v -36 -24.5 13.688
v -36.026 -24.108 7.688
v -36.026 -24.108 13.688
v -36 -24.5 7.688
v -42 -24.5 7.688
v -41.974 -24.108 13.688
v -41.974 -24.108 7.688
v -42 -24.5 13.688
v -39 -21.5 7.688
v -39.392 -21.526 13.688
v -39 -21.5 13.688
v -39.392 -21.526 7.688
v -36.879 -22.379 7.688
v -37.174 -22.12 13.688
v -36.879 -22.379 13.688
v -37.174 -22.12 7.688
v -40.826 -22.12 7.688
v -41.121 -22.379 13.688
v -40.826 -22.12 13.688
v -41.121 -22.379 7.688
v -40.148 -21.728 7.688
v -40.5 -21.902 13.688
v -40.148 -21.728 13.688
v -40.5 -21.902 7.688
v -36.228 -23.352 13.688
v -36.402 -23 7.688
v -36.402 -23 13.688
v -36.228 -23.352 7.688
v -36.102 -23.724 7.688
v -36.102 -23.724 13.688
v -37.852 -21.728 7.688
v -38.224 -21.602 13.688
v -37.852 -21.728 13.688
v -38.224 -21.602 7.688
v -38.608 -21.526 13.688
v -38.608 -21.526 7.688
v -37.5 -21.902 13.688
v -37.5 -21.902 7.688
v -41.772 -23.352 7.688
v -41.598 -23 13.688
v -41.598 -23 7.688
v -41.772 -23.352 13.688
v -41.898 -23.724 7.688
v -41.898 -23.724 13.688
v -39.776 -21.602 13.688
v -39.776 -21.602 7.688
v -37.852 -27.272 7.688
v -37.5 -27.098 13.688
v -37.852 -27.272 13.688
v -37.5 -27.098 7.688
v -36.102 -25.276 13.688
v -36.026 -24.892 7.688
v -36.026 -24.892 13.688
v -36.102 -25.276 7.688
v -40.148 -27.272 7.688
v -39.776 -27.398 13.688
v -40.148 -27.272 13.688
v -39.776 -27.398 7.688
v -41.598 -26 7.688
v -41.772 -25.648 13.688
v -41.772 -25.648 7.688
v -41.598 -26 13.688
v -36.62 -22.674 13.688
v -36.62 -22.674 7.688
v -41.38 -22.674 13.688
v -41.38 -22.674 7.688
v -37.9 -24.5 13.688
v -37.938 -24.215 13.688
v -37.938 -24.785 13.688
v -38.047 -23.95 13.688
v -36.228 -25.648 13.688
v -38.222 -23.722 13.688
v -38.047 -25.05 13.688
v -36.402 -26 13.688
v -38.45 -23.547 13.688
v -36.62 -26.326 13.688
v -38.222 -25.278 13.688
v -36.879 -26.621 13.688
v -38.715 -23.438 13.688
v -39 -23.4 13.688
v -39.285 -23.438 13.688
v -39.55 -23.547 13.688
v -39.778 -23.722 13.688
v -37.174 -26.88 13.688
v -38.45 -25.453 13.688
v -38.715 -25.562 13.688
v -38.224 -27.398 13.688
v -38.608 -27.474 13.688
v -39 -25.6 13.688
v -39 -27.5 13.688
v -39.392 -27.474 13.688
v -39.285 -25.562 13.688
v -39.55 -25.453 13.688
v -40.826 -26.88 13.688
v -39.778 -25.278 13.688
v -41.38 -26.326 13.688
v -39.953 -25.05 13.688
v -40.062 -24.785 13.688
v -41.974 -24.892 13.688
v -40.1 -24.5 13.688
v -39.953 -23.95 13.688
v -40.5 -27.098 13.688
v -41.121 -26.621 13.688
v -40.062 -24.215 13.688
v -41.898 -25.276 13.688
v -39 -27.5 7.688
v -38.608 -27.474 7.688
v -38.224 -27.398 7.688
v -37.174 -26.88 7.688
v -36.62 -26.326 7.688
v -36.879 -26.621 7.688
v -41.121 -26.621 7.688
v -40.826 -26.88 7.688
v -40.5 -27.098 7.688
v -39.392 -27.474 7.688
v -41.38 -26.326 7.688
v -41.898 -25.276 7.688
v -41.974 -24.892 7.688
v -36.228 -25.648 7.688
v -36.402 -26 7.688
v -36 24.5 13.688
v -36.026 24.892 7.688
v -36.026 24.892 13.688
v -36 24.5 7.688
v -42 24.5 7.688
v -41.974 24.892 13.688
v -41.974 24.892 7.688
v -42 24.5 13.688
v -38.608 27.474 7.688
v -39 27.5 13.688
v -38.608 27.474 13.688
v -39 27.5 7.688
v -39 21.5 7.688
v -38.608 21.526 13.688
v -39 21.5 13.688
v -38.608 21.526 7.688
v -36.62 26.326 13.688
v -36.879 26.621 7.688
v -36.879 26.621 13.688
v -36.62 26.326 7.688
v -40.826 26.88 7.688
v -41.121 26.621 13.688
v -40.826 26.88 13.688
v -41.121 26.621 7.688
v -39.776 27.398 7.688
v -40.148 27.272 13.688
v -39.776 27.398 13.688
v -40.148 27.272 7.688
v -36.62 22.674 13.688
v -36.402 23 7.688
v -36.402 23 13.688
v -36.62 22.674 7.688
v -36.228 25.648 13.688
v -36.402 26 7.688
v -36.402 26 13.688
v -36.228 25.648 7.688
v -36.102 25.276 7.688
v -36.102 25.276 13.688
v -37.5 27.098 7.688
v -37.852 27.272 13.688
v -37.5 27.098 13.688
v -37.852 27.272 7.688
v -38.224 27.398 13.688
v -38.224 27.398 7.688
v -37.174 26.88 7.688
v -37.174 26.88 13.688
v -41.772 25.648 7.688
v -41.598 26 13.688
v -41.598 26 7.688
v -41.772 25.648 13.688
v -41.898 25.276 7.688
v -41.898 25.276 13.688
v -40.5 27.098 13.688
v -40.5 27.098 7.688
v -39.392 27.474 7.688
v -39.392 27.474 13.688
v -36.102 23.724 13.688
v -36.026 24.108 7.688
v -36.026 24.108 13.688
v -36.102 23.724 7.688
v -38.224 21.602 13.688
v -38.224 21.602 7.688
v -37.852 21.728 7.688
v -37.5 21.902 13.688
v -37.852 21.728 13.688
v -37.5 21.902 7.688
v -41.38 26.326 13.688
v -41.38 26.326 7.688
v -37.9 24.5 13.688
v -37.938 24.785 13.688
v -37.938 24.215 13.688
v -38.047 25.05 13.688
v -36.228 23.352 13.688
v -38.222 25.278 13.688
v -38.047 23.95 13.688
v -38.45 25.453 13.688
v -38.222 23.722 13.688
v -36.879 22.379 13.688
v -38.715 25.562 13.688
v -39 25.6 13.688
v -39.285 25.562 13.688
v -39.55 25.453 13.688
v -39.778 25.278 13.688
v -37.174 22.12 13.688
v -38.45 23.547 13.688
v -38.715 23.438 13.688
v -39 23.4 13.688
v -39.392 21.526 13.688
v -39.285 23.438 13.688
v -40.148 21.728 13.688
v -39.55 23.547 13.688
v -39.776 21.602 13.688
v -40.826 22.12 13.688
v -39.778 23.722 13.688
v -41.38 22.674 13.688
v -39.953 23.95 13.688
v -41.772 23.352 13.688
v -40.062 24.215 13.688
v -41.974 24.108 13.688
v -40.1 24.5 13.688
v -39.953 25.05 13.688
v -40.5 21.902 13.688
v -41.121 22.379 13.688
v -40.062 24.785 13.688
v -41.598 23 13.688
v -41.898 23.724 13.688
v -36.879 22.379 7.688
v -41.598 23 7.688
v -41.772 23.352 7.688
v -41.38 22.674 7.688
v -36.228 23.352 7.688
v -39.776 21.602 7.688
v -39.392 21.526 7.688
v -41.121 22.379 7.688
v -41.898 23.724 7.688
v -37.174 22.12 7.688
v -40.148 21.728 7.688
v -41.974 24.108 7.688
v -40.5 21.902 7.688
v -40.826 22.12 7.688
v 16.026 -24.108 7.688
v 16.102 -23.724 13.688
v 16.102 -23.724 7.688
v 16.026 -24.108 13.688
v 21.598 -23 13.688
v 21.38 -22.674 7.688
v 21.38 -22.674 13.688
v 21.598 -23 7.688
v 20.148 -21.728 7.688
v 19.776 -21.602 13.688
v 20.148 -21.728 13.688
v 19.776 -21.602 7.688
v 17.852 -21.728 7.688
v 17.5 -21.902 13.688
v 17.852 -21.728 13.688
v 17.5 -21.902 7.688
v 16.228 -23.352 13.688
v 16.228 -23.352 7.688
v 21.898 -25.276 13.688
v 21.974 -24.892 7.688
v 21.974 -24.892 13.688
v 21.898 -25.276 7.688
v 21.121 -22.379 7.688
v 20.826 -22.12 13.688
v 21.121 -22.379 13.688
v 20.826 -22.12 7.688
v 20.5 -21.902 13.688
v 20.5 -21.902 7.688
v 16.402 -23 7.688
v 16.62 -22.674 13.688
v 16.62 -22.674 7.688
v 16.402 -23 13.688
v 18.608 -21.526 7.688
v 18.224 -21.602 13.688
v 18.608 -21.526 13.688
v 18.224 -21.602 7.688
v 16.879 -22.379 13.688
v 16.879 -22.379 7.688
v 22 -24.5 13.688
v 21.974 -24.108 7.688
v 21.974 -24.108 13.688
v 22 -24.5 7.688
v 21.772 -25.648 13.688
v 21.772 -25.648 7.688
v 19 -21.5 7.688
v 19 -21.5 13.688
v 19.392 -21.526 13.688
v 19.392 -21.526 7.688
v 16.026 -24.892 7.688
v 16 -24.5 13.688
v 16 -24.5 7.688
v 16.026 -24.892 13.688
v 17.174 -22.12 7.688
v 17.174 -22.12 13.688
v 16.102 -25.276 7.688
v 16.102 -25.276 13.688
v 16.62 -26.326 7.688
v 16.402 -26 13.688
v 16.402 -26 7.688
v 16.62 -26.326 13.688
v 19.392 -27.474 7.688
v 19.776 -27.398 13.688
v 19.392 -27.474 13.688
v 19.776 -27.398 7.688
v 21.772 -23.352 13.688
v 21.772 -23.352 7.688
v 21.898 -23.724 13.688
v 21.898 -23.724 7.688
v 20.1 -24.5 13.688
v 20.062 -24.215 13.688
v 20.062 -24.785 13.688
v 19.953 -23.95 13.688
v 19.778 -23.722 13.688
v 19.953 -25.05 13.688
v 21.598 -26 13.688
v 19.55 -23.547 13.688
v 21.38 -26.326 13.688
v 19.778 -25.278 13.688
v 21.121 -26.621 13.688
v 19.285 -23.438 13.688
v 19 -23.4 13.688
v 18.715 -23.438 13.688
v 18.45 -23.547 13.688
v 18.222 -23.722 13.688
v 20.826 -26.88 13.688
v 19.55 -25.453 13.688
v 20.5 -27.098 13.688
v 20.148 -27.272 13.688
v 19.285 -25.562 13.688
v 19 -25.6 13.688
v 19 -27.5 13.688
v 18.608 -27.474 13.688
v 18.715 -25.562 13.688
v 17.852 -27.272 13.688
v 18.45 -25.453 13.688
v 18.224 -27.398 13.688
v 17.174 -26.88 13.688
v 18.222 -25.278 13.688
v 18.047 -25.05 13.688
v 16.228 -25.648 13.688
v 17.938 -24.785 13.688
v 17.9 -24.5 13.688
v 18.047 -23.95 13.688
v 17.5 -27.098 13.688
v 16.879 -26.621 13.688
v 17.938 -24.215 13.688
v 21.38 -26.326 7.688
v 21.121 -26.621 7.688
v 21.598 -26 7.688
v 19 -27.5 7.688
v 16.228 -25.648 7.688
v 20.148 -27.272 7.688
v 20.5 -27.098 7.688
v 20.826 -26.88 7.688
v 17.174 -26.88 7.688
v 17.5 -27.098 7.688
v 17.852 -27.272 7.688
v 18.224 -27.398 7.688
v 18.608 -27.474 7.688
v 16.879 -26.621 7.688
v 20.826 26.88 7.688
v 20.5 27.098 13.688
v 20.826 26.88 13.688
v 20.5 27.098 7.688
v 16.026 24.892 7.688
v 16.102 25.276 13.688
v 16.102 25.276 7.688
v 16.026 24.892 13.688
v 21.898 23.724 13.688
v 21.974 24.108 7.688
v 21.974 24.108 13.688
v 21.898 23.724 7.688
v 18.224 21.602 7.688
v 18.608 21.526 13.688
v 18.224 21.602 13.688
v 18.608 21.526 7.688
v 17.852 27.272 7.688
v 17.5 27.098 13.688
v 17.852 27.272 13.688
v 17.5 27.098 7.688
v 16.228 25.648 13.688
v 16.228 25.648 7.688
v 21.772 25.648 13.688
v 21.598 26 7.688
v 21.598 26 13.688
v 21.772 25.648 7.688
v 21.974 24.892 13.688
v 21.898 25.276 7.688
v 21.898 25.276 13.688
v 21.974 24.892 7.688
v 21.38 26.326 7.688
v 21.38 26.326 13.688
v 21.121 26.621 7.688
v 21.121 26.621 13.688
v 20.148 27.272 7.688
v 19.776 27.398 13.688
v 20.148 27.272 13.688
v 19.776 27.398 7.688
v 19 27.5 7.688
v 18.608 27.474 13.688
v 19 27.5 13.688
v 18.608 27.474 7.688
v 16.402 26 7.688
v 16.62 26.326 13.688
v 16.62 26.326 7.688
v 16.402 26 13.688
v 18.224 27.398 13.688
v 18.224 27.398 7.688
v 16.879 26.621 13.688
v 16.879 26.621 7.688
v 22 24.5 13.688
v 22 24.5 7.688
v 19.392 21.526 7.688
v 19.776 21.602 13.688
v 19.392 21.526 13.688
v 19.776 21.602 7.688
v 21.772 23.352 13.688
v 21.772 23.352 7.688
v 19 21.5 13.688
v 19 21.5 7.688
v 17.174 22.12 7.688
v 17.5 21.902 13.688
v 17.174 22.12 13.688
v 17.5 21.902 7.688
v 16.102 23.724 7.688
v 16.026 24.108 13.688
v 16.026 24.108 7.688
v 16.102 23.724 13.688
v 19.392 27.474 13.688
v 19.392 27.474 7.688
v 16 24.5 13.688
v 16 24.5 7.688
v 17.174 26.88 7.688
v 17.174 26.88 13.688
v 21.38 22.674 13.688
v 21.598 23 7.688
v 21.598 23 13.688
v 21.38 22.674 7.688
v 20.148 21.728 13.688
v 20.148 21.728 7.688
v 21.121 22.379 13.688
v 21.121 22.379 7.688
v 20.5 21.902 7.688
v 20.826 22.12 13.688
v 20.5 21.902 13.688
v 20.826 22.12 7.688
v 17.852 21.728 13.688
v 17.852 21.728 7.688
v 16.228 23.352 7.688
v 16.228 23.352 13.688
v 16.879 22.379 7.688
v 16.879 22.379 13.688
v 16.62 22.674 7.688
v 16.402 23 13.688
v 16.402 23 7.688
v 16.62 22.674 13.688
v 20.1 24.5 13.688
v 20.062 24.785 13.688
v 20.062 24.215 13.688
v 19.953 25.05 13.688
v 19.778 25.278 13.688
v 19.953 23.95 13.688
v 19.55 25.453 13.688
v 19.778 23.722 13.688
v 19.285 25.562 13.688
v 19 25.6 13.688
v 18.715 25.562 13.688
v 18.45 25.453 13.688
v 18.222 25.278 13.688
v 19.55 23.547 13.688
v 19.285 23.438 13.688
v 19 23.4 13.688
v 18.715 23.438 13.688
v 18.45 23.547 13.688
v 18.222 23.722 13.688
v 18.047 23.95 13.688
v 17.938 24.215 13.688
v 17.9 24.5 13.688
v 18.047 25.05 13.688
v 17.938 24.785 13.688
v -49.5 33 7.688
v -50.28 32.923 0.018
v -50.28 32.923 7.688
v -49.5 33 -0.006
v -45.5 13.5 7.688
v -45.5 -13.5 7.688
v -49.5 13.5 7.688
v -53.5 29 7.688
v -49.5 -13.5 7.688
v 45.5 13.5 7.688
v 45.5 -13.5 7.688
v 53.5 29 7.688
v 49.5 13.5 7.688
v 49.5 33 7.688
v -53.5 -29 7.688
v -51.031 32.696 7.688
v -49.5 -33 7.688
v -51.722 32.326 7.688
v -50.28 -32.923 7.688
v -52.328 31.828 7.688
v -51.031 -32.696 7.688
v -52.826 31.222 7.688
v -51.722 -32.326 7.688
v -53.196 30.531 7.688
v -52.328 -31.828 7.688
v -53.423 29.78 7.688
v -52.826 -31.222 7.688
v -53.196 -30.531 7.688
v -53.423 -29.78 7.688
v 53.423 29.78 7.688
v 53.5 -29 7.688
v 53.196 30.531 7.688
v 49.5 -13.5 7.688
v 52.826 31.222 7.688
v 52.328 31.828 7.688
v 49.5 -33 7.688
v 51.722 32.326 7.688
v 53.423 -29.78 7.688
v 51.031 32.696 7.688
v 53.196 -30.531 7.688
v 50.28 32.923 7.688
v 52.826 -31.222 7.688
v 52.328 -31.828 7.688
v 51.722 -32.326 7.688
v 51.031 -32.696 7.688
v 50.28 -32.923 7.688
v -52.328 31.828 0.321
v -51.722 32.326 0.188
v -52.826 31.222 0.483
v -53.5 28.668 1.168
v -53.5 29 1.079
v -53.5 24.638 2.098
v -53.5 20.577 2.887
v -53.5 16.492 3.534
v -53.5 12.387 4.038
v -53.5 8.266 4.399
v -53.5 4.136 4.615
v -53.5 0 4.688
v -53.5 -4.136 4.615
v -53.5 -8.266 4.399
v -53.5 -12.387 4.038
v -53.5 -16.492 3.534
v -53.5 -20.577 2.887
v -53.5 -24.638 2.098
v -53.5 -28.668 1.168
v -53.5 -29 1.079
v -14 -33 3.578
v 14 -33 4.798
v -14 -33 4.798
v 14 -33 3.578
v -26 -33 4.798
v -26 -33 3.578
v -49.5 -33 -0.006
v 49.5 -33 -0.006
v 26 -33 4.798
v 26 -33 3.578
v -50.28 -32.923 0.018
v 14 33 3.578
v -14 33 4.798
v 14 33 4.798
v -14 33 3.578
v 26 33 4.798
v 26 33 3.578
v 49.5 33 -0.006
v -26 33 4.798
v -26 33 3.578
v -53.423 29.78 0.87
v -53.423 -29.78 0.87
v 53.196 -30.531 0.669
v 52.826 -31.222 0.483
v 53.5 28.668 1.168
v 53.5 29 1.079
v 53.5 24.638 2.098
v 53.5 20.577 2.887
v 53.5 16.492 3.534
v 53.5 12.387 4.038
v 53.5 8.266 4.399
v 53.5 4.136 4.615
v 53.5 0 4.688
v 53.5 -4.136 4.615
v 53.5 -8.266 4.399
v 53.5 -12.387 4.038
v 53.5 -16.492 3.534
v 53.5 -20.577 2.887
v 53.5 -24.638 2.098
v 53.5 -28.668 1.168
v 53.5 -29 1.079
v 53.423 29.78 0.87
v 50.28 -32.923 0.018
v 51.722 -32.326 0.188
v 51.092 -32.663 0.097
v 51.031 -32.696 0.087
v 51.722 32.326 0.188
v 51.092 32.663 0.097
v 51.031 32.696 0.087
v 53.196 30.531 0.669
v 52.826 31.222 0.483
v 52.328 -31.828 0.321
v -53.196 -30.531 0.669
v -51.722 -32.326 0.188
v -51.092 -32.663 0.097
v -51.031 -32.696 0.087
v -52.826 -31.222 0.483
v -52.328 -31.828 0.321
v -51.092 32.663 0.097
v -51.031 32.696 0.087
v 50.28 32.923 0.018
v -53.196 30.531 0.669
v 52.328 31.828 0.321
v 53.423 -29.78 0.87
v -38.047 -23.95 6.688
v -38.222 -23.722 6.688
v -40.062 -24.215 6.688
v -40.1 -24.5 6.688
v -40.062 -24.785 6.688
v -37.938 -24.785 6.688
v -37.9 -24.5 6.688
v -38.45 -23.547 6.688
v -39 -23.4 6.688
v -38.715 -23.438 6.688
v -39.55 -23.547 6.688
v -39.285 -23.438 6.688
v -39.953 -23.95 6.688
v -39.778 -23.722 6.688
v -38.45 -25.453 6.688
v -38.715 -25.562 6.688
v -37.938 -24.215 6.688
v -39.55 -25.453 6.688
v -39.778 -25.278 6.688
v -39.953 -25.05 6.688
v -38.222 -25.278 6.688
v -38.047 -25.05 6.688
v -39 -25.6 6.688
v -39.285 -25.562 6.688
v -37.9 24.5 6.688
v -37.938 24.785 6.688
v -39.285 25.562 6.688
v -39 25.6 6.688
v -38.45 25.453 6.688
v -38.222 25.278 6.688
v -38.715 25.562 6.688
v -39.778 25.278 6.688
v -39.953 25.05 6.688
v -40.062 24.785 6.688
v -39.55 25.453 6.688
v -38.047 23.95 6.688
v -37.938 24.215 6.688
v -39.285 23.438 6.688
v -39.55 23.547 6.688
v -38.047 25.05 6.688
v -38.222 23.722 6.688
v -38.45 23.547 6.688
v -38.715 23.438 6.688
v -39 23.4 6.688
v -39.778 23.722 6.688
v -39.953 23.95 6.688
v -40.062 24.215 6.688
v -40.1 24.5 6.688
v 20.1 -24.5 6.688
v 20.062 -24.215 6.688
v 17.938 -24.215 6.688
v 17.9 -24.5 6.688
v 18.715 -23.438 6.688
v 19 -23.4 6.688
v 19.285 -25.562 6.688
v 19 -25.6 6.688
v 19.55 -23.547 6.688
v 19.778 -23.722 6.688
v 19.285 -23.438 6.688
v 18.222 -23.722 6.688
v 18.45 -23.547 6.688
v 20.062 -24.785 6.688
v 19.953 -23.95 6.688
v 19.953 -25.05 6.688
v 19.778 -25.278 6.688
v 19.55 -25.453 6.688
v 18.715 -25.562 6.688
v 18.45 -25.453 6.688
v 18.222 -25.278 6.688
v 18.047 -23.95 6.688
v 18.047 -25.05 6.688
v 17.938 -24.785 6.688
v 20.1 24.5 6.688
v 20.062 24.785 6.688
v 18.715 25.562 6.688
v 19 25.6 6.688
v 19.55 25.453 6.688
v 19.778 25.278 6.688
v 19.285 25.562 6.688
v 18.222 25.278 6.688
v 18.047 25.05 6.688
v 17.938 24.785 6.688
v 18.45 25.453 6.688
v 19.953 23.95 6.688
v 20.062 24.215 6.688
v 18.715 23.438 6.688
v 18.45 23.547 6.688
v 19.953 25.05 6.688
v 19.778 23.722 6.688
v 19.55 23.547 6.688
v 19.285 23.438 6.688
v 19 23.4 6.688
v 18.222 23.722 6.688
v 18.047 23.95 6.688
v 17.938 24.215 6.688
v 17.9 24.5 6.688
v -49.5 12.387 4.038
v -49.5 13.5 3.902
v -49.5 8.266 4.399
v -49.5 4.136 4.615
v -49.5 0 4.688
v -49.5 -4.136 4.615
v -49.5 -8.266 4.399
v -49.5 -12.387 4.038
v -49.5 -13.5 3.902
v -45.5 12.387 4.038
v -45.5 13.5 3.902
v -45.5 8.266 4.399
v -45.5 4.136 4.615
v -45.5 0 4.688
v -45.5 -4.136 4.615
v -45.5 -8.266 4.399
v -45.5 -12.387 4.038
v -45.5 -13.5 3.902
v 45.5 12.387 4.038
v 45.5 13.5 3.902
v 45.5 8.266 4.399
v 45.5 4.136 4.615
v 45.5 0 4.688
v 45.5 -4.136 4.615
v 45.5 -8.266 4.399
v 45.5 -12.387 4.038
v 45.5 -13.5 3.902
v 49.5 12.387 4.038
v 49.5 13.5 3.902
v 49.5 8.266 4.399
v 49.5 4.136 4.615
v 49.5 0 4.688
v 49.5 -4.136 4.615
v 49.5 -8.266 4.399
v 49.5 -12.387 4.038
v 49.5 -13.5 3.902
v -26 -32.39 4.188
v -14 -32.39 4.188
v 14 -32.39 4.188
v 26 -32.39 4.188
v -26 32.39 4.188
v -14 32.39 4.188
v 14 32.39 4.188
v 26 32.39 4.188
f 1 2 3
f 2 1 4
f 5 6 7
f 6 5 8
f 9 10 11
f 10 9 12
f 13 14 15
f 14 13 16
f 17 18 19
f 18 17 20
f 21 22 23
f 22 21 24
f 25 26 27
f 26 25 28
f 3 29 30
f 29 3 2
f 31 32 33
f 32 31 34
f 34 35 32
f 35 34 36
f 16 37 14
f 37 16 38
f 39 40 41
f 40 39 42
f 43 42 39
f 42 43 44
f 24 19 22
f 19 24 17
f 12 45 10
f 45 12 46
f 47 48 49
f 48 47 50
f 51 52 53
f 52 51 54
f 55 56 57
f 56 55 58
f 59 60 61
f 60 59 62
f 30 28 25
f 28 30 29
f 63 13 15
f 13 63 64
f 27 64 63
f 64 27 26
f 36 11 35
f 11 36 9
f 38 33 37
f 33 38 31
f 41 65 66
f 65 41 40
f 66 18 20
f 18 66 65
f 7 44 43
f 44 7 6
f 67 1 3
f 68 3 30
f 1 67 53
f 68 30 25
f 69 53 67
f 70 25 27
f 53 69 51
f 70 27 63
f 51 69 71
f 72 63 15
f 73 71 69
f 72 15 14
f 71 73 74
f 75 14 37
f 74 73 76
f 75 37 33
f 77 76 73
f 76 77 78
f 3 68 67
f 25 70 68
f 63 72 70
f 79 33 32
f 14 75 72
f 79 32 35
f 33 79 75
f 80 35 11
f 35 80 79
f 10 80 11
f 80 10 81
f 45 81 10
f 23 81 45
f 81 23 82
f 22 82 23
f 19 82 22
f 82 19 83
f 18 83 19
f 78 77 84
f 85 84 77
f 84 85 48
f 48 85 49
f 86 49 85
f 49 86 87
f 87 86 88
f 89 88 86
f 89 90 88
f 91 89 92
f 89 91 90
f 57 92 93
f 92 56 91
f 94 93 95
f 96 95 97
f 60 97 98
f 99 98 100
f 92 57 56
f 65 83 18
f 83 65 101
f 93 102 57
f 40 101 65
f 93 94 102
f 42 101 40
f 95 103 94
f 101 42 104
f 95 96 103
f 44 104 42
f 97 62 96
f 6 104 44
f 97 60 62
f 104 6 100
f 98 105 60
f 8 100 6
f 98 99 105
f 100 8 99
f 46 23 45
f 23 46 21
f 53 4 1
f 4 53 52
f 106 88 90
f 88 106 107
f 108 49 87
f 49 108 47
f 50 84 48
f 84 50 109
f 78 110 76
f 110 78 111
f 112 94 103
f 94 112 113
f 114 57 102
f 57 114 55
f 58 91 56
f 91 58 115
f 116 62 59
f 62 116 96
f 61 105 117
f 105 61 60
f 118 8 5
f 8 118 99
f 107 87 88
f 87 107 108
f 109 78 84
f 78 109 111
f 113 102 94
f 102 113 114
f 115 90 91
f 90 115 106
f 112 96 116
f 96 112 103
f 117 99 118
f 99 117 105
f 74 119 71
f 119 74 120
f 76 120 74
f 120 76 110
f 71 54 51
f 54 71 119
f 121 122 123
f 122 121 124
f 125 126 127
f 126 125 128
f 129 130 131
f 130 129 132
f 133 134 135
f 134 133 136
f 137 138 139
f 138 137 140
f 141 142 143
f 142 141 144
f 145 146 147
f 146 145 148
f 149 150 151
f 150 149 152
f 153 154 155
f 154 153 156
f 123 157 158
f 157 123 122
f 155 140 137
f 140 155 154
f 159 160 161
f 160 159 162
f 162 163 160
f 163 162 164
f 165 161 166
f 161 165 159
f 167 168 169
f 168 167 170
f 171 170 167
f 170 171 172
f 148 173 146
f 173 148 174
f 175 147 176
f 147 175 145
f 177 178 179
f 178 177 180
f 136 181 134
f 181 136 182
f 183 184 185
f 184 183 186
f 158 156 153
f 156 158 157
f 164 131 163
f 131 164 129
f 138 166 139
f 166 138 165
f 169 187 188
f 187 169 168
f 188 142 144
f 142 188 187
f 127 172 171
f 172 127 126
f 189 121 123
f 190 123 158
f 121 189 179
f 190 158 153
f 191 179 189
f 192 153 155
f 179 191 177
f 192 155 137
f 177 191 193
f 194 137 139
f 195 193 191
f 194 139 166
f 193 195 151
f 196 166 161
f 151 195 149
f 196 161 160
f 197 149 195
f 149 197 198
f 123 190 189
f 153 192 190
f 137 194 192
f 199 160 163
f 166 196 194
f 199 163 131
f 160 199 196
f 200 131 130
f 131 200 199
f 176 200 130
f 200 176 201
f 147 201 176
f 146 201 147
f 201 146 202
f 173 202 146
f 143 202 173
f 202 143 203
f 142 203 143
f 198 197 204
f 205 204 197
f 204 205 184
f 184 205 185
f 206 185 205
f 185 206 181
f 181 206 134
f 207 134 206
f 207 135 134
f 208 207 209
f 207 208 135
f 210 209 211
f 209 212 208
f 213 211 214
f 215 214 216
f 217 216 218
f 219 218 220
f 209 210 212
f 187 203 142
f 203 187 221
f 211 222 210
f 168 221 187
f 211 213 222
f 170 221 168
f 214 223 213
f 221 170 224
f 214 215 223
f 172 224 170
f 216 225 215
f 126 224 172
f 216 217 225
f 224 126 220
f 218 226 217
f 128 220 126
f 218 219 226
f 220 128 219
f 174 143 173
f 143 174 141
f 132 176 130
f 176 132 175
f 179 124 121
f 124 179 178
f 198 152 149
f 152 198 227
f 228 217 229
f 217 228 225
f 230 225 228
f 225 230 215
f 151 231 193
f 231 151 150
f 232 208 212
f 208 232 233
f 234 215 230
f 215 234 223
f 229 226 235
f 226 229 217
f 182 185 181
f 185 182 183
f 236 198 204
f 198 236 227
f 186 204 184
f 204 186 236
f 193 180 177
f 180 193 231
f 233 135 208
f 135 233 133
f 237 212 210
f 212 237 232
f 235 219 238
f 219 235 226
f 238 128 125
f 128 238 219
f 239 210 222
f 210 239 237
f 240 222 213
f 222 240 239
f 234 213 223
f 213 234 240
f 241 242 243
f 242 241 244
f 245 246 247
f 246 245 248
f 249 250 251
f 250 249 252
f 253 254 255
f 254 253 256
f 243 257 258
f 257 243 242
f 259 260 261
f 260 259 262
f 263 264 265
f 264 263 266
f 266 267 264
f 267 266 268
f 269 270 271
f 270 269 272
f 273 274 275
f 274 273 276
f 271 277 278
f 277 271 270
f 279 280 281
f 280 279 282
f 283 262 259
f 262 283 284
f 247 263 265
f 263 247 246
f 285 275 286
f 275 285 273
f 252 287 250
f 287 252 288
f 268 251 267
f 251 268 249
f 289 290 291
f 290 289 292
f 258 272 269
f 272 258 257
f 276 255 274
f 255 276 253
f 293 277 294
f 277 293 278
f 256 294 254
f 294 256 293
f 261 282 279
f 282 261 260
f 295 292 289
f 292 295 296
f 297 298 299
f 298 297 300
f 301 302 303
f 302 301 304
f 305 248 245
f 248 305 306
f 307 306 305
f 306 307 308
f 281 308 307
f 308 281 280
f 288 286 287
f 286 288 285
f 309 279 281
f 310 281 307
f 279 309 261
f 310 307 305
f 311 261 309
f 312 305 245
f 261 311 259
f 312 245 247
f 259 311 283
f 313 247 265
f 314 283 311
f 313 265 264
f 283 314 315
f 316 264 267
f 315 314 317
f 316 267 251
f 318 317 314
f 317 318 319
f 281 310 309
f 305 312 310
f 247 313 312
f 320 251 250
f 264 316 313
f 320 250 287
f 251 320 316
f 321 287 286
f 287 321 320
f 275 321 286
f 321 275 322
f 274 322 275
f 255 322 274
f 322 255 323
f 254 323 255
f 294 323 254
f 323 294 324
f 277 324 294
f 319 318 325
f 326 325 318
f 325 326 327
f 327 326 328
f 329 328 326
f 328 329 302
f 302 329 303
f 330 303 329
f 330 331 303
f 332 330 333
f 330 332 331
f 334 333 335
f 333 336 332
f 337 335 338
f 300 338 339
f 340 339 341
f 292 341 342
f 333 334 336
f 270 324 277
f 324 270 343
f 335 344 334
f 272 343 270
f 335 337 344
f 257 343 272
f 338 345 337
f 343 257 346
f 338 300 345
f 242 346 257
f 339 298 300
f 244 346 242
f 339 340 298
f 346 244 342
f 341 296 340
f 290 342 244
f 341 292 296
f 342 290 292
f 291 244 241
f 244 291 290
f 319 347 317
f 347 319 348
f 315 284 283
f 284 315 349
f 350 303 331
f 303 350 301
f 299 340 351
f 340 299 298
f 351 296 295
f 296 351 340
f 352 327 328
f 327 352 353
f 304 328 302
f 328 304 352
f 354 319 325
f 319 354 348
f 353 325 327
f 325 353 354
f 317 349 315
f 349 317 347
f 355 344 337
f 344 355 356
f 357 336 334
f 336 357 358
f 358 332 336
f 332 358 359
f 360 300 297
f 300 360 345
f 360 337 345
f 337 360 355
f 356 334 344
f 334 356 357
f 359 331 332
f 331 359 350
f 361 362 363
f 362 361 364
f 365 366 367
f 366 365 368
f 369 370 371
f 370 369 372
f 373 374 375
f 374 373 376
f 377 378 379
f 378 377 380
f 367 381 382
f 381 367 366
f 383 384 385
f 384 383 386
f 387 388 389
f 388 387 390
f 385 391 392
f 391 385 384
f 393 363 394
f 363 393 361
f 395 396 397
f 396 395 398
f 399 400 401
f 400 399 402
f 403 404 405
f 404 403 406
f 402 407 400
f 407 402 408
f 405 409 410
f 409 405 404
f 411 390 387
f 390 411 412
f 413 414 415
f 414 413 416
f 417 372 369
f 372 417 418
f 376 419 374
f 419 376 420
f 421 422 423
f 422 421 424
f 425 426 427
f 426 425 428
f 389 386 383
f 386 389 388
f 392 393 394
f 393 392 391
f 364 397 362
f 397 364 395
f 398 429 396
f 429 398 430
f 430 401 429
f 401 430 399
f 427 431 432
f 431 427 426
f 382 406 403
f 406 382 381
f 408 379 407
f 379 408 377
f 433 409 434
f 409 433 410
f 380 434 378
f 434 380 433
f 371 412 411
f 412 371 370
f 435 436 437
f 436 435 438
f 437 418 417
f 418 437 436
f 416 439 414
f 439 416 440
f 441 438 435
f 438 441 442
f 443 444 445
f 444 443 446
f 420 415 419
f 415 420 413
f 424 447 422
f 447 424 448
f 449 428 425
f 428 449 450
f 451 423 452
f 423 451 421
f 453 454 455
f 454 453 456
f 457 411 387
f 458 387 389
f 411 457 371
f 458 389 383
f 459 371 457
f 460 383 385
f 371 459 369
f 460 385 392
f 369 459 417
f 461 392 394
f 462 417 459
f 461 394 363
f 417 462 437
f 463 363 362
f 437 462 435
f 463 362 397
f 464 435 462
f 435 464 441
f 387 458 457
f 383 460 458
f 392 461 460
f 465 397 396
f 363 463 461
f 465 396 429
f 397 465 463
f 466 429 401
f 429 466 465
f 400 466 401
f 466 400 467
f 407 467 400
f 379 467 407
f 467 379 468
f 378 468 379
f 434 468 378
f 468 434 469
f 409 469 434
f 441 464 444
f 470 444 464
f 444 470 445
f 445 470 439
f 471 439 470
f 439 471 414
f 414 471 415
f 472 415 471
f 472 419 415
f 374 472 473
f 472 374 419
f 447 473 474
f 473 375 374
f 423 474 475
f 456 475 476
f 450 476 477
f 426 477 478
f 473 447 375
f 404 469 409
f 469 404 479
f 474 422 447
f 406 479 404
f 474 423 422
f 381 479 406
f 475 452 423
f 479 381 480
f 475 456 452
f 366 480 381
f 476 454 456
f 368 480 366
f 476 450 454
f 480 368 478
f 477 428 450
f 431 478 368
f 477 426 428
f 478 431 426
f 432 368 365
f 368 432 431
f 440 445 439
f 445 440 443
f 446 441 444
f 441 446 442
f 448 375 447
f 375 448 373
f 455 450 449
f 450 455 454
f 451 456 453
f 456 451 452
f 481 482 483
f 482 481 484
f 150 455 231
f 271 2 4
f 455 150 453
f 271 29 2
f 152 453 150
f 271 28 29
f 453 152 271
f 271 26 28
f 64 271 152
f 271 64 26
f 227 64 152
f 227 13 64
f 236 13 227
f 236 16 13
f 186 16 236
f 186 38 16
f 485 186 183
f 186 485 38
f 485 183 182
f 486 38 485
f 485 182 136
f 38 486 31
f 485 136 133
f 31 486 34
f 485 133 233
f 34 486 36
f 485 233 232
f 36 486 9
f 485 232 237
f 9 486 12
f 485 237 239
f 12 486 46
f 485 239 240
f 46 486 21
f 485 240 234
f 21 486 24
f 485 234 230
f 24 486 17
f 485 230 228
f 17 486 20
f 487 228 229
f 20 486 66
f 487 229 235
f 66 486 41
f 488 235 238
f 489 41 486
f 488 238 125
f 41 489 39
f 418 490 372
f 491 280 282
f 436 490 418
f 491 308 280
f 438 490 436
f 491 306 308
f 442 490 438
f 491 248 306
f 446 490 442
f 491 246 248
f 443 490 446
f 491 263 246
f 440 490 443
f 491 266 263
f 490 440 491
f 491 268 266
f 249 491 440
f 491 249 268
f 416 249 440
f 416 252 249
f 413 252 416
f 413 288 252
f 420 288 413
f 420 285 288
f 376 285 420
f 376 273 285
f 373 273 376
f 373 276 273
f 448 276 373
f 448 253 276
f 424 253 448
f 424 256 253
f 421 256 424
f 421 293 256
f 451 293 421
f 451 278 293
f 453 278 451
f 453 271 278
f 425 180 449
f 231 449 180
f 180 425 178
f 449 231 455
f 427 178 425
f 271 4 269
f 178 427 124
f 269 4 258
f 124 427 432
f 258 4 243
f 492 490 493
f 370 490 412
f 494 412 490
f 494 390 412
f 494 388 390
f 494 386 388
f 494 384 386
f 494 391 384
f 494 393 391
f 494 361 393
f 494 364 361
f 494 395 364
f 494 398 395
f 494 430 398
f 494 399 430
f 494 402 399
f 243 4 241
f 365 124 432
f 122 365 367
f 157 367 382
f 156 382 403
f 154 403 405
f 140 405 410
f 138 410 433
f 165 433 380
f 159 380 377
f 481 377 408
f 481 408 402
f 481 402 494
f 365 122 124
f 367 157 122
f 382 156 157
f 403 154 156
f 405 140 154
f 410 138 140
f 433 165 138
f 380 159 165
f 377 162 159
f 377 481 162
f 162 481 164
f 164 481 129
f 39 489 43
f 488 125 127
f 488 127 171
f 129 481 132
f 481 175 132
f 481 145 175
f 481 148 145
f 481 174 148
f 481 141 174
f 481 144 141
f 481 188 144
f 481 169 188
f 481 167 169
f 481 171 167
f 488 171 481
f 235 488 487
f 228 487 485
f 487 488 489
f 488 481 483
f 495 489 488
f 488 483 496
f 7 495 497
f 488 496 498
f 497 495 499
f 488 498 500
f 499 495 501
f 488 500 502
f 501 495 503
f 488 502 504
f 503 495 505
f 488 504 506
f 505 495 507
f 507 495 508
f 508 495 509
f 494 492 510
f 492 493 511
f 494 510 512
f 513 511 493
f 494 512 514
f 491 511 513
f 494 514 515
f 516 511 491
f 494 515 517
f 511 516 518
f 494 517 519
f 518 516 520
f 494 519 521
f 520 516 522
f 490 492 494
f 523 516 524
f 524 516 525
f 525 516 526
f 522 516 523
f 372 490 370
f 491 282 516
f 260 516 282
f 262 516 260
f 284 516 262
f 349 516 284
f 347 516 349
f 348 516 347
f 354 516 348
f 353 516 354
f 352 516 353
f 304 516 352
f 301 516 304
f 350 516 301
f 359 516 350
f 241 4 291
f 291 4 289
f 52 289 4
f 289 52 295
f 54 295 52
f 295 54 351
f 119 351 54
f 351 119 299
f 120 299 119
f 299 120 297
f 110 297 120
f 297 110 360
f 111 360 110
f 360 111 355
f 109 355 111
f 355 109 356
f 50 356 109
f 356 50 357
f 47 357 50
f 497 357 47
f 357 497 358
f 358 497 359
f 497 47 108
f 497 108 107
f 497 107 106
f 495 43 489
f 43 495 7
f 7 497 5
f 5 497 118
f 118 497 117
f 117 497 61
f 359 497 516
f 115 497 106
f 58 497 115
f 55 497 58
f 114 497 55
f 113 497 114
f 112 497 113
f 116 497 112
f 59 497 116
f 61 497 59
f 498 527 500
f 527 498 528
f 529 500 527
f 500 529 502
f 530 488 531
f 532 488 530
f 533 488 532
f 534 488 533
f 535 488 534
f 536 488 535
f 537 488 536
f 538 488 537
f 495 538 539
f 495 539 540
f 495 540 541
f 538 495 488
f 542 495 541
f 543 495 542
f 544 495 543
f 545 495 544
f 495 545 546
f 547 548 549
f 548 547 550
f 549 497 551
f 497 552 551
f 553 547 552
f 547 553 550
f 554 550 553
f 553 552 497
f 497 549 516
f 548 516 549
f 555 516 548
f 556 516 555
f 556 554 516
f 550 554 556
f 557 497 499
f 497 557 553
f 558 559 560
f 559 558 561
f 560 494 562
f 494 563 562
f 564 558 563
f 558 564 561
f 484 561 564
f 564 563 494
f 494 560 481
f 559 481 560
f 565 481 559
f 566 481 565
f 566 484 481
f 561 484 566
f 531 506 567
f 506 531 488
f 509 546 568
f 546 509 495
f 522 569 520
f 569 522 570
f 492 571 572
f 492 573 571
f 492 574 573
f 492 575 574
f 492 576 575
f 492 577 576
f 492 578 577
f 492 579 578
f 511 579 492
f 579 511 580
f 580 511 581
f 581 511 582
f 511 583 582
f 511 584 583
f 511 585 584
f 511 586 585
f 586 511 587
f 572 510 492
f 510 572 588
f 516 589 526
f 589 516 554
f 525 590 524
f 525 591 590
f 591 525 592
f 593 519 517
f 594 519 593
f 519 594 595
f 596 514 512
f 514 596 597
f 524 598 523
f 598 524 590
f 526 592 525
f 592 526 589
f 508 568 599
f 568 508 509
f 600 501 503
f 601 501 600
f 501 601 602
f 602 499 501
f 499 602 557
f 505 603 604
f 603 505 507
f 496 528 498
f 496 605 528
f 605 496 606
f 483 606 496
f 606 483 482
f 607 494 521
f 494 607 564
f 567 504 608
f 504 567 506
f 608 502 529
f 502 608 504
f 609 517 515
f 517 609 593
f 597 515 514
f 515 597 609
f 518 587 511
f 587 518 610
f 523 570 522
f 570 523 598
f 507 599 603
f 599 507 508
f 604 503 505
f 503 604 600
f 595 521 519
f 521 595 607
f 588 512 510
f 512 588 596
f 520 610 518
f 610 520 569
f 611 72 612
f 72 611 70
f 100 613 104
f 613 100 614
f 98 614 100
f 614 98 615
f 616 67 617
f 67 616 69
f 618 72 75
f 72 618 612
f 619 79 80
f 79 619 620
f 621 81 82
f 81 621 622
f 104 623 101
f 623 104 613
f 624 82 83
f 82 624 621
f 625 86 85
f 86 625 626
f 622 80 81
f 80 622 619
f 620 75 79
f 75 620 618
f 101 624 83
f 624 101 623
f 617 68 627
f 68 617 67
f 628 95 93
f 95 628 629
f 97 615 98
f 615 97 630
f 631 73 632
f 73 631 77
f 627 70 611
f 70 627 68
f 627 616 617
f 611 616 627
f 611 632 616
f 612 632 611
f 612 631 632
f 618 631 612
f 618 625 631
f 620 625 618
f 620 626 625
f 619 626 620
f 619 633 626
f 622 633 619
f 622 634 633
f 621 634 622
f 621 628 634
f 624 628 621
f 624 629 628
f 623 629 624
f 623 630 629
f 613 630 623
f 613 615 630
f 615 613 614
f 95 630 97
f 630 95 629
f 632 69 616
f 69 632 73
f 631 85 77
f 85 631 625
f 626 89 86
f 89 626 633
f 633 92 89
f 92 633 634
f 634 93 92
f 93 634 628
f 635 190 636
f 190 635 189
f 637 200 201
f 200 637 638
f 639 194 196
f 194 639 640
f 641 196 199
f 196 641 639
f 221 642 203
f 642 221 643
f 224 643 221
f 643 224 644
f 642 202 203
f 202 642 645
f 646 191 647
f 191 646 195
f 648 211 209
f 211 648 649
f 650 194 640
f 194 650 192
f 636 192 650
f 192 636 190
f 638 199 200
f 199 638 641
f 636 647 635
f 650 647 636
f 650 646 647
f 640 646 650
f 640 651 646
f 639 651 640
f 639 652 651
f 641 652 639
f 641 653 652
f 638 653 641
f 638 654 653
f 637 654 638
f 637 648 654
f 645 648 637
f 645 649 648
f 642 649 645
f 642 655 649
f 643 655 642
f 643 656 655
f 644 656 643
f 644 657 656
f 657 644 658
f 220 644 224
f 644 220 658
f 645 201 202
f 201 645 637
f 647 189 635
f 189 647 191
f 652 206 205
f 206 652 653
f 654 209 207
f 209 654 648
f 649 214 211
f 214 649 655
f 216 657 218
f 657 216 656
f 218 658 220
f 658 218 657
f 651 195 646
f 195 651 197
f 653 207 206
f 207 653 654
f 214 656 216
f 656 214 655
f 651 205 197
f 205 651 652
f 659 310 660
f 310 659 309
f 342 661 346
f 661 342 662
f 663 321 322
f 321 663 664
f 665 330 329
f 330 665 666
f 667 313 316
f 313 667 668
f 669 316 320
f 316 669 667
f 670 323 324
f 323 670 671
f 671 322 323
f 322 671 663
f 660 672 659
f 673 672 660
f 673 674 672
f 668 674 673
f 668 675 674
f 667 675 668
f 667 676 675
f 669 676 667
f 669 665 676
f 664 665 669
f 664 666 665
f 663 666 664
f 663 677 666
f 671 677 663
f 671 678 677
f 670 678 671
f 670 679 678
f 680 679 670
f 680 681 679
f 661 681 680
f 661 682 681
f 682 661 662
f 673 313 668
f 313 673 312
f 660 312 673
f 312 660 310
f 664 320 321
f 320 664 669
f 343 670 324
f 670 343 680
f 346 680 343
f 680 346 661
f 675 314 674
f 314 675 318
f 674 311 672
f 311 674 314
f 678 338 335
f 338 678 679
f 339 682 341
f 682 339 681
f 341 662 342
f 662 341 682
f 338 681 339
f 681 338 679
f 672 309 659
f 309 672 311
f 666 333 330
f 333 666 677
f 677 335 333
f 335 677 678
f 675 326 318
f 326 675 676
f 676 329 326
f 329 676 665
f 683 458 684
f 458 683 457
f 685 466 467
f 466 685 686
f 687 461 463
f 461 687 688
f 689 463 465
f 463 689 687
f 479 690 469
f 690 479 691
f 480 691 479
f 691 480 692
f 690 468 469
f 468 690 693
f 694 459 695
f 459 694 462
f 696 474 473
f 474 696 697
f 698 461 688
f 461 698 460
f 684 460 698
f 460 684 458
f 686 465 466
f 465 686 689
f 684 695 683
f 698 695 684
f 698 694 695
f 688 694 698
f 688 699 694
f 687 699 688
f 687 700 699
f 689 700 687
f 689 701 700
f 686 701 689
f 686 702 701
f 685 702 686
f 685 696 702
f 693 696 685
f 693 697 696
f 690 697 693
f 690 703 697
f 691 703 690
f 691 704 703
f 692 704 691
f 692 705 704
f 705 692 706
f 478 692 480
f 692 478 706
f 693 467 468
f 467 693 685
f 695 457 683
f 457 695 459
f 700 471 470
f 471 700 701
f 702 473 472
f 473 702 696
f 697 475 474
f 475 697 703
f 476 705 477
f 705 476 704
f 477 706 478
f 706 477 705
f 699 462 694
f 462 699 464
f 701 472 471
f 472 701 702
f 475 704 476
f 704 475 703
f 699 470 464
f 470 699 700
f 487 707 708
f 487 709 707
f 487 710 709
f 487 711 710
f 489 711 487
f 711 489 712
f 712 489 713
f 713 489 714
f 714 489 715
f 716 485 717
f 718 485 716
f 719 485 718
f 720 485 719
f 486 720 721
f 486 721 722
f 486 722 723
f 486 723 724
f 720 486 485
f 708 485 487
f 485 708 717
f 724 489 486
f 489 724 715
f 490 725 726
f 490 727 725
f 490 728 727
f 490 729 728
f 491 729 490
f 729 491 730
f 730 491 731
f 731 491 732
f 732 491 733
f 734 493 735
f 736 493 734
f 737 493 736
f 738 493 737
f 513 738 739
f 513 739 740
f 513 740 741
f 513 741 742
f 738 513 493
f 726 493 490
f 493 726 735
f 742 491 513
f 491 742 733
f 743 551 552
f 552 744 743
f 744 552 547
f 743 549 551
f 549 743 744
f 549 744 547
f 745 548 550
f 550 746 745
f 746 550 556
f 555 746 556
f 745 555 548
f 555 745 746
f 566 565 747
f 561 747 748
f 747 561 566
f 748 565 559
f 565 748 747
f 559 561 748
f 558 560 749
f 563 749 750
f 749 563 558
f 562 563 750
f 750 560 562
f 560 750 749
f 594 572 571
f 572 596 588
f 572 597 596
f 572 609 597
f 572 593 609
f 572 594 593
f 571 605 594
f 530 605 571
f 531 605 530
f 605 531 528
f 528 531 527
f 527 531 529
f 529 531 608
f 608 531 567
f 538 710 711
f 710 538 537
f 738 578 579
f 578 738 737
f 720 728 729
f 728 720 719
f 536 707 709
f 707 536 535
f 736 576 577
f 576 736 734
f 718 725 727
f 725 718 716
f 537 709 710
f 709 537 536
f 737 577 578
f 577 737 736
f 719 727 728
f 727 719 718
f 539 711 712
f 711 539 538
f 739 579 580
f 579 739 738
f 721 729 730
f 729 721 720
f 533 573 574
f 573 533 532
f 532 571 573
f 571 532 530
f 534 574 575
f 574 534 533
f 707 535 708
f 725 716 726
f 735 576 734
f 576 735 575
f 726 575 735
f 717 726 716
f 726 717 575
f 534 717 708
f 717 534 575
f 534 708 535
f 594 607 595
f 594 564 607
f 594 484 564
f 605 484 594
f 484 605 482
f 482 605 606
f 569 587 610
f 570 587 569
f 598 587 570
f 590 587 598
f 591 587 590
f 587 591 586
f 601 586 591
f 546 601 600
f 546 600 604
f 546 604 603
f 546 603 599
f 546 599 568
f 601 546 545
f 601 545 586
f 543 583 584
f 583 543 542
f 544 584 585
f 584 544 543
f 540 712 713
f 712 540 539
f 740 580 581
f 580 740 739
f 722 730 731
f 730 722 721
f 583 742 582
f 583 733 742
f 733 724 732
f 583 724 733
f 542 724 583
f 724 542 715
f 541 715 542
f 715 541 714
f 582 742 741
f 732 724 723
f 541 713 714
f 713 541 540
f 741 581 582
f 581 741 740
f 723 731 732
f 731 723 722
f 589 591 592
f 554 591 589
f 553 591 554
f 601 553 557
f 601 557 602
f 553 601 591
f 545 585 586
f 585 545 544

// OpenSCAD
// Copyright (C) 2026 Arun Venkataswamy
// Copyright (C) 2026 Kyle Downs
//
// This file is part of Starlock.
//
// Starlock is free software: you can redistribute it and/or modify it
// under the terms of the GNU General Public License as published by
// the Free Software Foundation, either version 3 of the License, or
// (at your option) any later version.
//
// Starlock is distributed in the hope that it will be useful, but
// WITHOUT ANY WARRANTY; without even the implied warranty of
// MERCHANTABILITY or FITNESS FOR A PARTICULAR PURPOSE. See the GNU
// General Public License for more details.
//
// You should have received a copy of the GNU General Public License
// along with Starlock. If not, see <https://www.gnu.org/licenses/>.

// ============================================================
// Starlock Pi 4 / Pi 5 Tube Tray and Cover
// ============================================================
//
// An open tray that carries a Raspberry Pi 4 or 5 on the telescope
// tube, for Starlock headless. Its base is curved to the tube like the
// tube shoe (tube_shoe.scad), and it sticks on with 3M VHB tape; a
// 25 mm Velcro strap through the end slots and round the tube is
// optional insurance. Use an Active Cooler on a Pi 5, which runs the
// solver continuously.
//
// The Pi's long edge runs along the tube. Mount it near the tube shoe
// so the camera's 1 m lead reaches without strain, and with the USB-C
// power side facing where your power bank lives.
//
// BOARD MOUNTING (PI_PINS):
//   false — 4 × M2.5 × 6 screws into 2.2 mm pilots in the standoffs
//   true  — each standoff ends in a pin that goes up through the Pi's
//           mounting hole; a drop of thin super glue (CA) on each pin
//           holds the board
//
// COVER (optional): a roof that snaps over the Pi and keeps dew and
// dust off it. Two beads inside each skirt click into pockets in the
// tray's long sides, which also stop it sliding along the tube. It
// leaves open:
//   - the USB / Ethernet end (camera lead), fully
//   - the USB-C and micro-HDMI side, through windows at port height
//   - the microSD, through a slot in the other end wall
//   - vents in the roof over the SoC / Active Cooler fan
// To take it off, spread the skirts at the middle of each side.
//
// MEASURE YOUR TUBE: set tube_od = circumference / π (as tube_shoe).
//
// HARDWARE: screws as above (none with PI_PINS); VHB tape ~ 90 × 50 mm;
// optional 25 mm Velcro strap.
//
// PRINTING: set one RENDER_* flag true (the other false) and export.
//   - Tray: base down, with TREE supports "on build plate only" — they
//     are needed only under the shallow curved underside. PETG preferred.
//   - Cover: roof down, no supports (the port windows' lower edges are
//     bridges of 25 mm or less). PETG preferred.

$fn = 180;

RENDER_TRAY  = true;
RENDER_COVER = false;
PI_PINS      = false;

/* Telescope tube */
tube_od          = 237;     // Apertura AD8: measured 744 mm round / π

/* Raspberry Pi 4 / 5 — same board outline and hole pattern */
pi_length        = 85;
pi_width         = 56;
pi_hole_x        = [3.5, 61.5];   // from the board's corner
pi_hole_y        = [3.5, 52.5];
pi_hole_dia      = 2.7;     // mounting holes (Pi mechanical drawing)
pcb_thickness    = 1.5;     // Pi 4 / 5 are 1.4–1.6

/* Tray */
margin           = 5;       // plate beyond the board, each side (Y)
floor_thickness  = 3;       // at the centre line
standoff_height  = 6;       // clears the microSD and the Pi 4's underside parts
standoff_dia     = 6;
pilot_dia        = 2.2;     // M2.5 self-tap
pilot_depth      = 7;
strap_width      = 27;      // slot for a 25 mm strap
strap_slot       = 4;       // slot size along the tube
strap_end        = 4;       // plate beyond each slot

/* Pins (PI_PINS) */
pin_clearance    = 0.15;    // per side: slips in, and thin CA wicks into the gap
pin_dia          = pi_hole_dia - 2 * pin_clearance;   // 2.4
pin_protrusion   = 1.0;     // above the board's top face
pin_chamfer      = 0.4;     // 45° tip chamfer

/* Cover */
cover_wall       = 1.7;     // 4 lines at 0.42
cover_roof       = 1.6;
cover_side_gap   = 0.2;     // skirt to tray side, per side
cover_end_gap    = 0.5;     // end wall to board edge
cover_headroom   = 18;      // board top to roof: clears the Ethernet jack
                            // (~13.5) and a Pi 5 Active Cooler with air
                            // over its fan
skirt_tube_gap   = 0.8;     // skirt bottom above the tube (plus the tape)
snap_depth       = 0.6;     // tray pocket depth; the bead is 0.1 shallower
snap_len         = 12;      // pocket length; the bead is 1 mm shorter
snap_x           = [-20, 20];   // pocket centres along the tube
snap_z           = -0.5;    // pocket centre height
// Port windows on the USB-C side, along the board from its SD-card end:
// USB-C at 11.2, micro-HDMI at 26 and 39.5, Pi 4 audio at 54
port_windows     = [[4, 19], [21, 46], [48, 60]];
port_below_pcb   = 2;       // windows start this far under the board
port_above_pcb   = 7;       // ... and end this far over its top face
sd_slot_width    = 22;      // microSD slot in the end wall, centred
vent_x           = [-20, 12];   // vent slot range along the tube
vent_y           = [-16, 22];   // across (−Y is the USB-C side)
vent_slot        = 2;
vent_pitch       = 4;

// ============================================================
// DERIVED
// ============================================================

tube_r      = tube_od / 2;
tray_width  = pi_width + 2 * margin;
tray_length = pi_length + 2 * (strap_end + strap_slot + 3);
edge_sag    = tube_r - sqrt(tube_r * tube_r - (tray_width / 2) * (tray_width / 2));

pcb_bottom_z = floor_thickness + standoff_height;
pcb_top_z    = pcb_bottom_z + pcb_thickness;

cover_in_y   = tray_width / 2 + cover_side_gap;           // skirt inner face
cover_out_y  = cover_in_y + cover_wall;
cover_in_x   = pi_length / 2 + cover_end_gap;             // end wall inner face
cover_out_x  = cover_in_x + cover_wall;
roof_z       = pcb_top_z + cover_headroom;                // roof underside
skirt_z      = sqrt(tube_r * tube_r - cover_in_y * cover_in_y) - tube_r
               + skirt_tube_gap;                           // skirt bottom
slot_inner_x = tray_length / 2 - strap_end - strap_slot;  // strap slot's inner edge

assert(strap_width < tray_width - 6, "strap slot too wide for the tray");
assert(pin_dia >= 2, "pins too thin to print and survive handling");
assert(cover_out_x < slot_inner_x, "cover end wall would cover the strap slots");
assert(snap_z - snap_depth > skirt_z + 1, "snap pockets below the skirt");
assert(snap_z + snap_depth < floor_thickness - 1, "snap pockets above the tray side");

// ============================================================
// TRAY — X along the tube, Y across, Z away from it; tube top at Z = 0
// ============================================================

module pi45_tray() {
    difference() {
        union() {
            translate([-tray_length / 2, -tray_width / 2, -edge_sag - 1])
                _rounded_block(tray_length, tray_width,
                               floor_thickness + edge_sag + 1, 4);
            for (hx = pi_hole_x, hy = pi_hole_y)
                translate([hx - pi_length / 2, hy - pi_width / 2, floor_thickness - 0.01]) {
                    cylinder(d = standoff_dia, h = standoff_height + 0.01, $fn = 48);
                    if (PI_PINS)
                        translate([0, 0, standoff_height]) _pin();
                }
        }

        // Tube
        translate([-tray_length, 0, -tube_r])
            rotate([0, 90, 0])
                cylinder(r = tube_r, h = 2 * tray_length);

        // Pilots
        if (!PI_PINS)
            for (hx = pi_hole_x, hy = pi_hole_y)
                translate([hx - pi_length / 2, hy - pi_width / 2,
                           pcb_bottom_z - pilot_depth])
                    cylinder(d = pilot_dia, h = pilot_depth + 1, $fn = 24);

        // Strap slots, one at each end
        for (s = [-1, 1])
            translate([s * (tray_length / 2 - strap_end - strap_slot / 2) - strap_slot / 2,
                       -strap_width / 2, -edge_sag - 2])
                cube([strap_slot, strap_width, floor_thickness + edge_sag + 4]);

        // Snap pockets for the cover's beads, in both long sides
        for (s = [-1, 1], x = snap_x)
            translate([x, s * tray_width / 2, snap_z])
                _snap_prism(snap_len, snap_depth + 0.01, s);
    }
}

module _pin() {
    pin_h = pcb_thickness + pin_protrusion;
    cylinder(d = pin_dia, h = pin_h - pin_chamfer + 0.01, $fn = 24);
    translate([0, 0, pin_h - pin_chamfer])
        cylinder(d1 = pin_dia, d2 = pin_dia - 2 * pin_chamfer,
                 h = pin_chamfer, $fn = 24);
}

// Triangular (45°) ridge along X, centred on the origin, pointing
// toward −s·Y from the plane Y = 0 with the given depth.
module _snap_prism(len, depth, s) {
    rotate([90, 0, 90])
        linear_extrude(len, center = true)
            polygon([[0, -depth], [-s * depth, 0], [0, depth]]);
}

module _rounded_block(l, w, h, r) {
    hull()
        for (x = [r, l - r], y = [r, w - r])
            translate([x, y, 0]) cylinder(r = r, h = h, $fn = 32);
}

// ============================================================
// COVER — in the tray's frame (as fitted)
// ============================================================

module pi45_cover() {
    board_x0 = -pi_length / 2;   // board's SD-card end
    difference() {
        translate([-cover_out_x, -cover_out_y, skirt_z])
            cube([2 * cover_out_x, 2 * cover_out_y, roof_z + cover_roof - skirt_z]);

        // Inside, open at the USB / Ethernet end (+X)
        translate([-cover_in_x, -cover_in_y, skirt_z - 1])
            cube([cover_in_x + cover_out_x + 1, 2 * cover_in_y, roof_z - skirt_z + 1]);
        // End walls stop at the tray's top face; only the skirts reach down
        translate([-cover_out_x - 1, -cover_in_y, skirt_z - 1])
            cube([2 * cover_out_x + 2, 2 * cover_in_y, floor_thickness - skirt_z + 1]);
        // Open end, keeping a post at each corner outside the board's width
        translate([cover_in_x - 1, -pi_width / 2 - 0.5, floor_thickness - 1])
            cube([cover_wall + 2, pi_width + 1, roof_z - floor_thickness + 1]);

        // Port windows in the −Y side
        for (w = port_windows)
            translate([board_x0 + w[0], -cover_out_y - 1, pcb_bottom_z - port_below_pcb])
                cube([w[1] - w[0], cover_wall + 2,
                      port_below_pcb + pcb_thickness + port_above_pcb]);

        // microSD slot in the −X end wall, open at the bottom
        translate([-cover_out_x - 1, -sd_slot_width / 2, floor_thickness - 1])
            cube([cover_wall + 2, sd_slot_width, pcb_top_z + 1 - floor_thickness + 1]);

        // Roof vents
        for (x = [vent_x[0] : vent_pitch : vent_x[1]])
            translate([x - vent_slot / 2, vent_y[0], roof_z - 1])
                cube([vent_slot, vent_y[1] - vent_y[0], cover_roof + 2]);
    }

    // Snap beads on the skirts' inner faces
    for (s = [-1, 1], x = snap_x)
        translate([x, s * (cover_in_y + 0.01), snap_z])
            _snap_prism(snap_len - 1, cover_side_gap + snap_depth - 0.1 + 0.01, s);
}

// ============================================================
// RENDER
// ============================================================

if (RENDER_TRAY && !RENDER_COVER)
    // Print orientation: lowest point (the curved edges) on the bed
    translate([0, 0, edge_sag]) pi45_tray();
else if (RENDER_COVER && !RENDER_TRAY)
    // Print orientation: roof on the bed
    translate([0, 0, roof_z + cover_roof]) rotate([180, 0, 0]) pi45_cover();
else {
    pi45_tray();
    if (RENDER_COVER) %pi45_cover();
}

// Board outline, preview only
if ($preview && RENDER_TRAY)
    %translate([-pi_length / 2, -pi_width / 2,
                (RENDER_COVER ? 0 : edge_sag) + pcb_bottom_z])
        cube([pi_length, pi_width, pcb_thickness]);
